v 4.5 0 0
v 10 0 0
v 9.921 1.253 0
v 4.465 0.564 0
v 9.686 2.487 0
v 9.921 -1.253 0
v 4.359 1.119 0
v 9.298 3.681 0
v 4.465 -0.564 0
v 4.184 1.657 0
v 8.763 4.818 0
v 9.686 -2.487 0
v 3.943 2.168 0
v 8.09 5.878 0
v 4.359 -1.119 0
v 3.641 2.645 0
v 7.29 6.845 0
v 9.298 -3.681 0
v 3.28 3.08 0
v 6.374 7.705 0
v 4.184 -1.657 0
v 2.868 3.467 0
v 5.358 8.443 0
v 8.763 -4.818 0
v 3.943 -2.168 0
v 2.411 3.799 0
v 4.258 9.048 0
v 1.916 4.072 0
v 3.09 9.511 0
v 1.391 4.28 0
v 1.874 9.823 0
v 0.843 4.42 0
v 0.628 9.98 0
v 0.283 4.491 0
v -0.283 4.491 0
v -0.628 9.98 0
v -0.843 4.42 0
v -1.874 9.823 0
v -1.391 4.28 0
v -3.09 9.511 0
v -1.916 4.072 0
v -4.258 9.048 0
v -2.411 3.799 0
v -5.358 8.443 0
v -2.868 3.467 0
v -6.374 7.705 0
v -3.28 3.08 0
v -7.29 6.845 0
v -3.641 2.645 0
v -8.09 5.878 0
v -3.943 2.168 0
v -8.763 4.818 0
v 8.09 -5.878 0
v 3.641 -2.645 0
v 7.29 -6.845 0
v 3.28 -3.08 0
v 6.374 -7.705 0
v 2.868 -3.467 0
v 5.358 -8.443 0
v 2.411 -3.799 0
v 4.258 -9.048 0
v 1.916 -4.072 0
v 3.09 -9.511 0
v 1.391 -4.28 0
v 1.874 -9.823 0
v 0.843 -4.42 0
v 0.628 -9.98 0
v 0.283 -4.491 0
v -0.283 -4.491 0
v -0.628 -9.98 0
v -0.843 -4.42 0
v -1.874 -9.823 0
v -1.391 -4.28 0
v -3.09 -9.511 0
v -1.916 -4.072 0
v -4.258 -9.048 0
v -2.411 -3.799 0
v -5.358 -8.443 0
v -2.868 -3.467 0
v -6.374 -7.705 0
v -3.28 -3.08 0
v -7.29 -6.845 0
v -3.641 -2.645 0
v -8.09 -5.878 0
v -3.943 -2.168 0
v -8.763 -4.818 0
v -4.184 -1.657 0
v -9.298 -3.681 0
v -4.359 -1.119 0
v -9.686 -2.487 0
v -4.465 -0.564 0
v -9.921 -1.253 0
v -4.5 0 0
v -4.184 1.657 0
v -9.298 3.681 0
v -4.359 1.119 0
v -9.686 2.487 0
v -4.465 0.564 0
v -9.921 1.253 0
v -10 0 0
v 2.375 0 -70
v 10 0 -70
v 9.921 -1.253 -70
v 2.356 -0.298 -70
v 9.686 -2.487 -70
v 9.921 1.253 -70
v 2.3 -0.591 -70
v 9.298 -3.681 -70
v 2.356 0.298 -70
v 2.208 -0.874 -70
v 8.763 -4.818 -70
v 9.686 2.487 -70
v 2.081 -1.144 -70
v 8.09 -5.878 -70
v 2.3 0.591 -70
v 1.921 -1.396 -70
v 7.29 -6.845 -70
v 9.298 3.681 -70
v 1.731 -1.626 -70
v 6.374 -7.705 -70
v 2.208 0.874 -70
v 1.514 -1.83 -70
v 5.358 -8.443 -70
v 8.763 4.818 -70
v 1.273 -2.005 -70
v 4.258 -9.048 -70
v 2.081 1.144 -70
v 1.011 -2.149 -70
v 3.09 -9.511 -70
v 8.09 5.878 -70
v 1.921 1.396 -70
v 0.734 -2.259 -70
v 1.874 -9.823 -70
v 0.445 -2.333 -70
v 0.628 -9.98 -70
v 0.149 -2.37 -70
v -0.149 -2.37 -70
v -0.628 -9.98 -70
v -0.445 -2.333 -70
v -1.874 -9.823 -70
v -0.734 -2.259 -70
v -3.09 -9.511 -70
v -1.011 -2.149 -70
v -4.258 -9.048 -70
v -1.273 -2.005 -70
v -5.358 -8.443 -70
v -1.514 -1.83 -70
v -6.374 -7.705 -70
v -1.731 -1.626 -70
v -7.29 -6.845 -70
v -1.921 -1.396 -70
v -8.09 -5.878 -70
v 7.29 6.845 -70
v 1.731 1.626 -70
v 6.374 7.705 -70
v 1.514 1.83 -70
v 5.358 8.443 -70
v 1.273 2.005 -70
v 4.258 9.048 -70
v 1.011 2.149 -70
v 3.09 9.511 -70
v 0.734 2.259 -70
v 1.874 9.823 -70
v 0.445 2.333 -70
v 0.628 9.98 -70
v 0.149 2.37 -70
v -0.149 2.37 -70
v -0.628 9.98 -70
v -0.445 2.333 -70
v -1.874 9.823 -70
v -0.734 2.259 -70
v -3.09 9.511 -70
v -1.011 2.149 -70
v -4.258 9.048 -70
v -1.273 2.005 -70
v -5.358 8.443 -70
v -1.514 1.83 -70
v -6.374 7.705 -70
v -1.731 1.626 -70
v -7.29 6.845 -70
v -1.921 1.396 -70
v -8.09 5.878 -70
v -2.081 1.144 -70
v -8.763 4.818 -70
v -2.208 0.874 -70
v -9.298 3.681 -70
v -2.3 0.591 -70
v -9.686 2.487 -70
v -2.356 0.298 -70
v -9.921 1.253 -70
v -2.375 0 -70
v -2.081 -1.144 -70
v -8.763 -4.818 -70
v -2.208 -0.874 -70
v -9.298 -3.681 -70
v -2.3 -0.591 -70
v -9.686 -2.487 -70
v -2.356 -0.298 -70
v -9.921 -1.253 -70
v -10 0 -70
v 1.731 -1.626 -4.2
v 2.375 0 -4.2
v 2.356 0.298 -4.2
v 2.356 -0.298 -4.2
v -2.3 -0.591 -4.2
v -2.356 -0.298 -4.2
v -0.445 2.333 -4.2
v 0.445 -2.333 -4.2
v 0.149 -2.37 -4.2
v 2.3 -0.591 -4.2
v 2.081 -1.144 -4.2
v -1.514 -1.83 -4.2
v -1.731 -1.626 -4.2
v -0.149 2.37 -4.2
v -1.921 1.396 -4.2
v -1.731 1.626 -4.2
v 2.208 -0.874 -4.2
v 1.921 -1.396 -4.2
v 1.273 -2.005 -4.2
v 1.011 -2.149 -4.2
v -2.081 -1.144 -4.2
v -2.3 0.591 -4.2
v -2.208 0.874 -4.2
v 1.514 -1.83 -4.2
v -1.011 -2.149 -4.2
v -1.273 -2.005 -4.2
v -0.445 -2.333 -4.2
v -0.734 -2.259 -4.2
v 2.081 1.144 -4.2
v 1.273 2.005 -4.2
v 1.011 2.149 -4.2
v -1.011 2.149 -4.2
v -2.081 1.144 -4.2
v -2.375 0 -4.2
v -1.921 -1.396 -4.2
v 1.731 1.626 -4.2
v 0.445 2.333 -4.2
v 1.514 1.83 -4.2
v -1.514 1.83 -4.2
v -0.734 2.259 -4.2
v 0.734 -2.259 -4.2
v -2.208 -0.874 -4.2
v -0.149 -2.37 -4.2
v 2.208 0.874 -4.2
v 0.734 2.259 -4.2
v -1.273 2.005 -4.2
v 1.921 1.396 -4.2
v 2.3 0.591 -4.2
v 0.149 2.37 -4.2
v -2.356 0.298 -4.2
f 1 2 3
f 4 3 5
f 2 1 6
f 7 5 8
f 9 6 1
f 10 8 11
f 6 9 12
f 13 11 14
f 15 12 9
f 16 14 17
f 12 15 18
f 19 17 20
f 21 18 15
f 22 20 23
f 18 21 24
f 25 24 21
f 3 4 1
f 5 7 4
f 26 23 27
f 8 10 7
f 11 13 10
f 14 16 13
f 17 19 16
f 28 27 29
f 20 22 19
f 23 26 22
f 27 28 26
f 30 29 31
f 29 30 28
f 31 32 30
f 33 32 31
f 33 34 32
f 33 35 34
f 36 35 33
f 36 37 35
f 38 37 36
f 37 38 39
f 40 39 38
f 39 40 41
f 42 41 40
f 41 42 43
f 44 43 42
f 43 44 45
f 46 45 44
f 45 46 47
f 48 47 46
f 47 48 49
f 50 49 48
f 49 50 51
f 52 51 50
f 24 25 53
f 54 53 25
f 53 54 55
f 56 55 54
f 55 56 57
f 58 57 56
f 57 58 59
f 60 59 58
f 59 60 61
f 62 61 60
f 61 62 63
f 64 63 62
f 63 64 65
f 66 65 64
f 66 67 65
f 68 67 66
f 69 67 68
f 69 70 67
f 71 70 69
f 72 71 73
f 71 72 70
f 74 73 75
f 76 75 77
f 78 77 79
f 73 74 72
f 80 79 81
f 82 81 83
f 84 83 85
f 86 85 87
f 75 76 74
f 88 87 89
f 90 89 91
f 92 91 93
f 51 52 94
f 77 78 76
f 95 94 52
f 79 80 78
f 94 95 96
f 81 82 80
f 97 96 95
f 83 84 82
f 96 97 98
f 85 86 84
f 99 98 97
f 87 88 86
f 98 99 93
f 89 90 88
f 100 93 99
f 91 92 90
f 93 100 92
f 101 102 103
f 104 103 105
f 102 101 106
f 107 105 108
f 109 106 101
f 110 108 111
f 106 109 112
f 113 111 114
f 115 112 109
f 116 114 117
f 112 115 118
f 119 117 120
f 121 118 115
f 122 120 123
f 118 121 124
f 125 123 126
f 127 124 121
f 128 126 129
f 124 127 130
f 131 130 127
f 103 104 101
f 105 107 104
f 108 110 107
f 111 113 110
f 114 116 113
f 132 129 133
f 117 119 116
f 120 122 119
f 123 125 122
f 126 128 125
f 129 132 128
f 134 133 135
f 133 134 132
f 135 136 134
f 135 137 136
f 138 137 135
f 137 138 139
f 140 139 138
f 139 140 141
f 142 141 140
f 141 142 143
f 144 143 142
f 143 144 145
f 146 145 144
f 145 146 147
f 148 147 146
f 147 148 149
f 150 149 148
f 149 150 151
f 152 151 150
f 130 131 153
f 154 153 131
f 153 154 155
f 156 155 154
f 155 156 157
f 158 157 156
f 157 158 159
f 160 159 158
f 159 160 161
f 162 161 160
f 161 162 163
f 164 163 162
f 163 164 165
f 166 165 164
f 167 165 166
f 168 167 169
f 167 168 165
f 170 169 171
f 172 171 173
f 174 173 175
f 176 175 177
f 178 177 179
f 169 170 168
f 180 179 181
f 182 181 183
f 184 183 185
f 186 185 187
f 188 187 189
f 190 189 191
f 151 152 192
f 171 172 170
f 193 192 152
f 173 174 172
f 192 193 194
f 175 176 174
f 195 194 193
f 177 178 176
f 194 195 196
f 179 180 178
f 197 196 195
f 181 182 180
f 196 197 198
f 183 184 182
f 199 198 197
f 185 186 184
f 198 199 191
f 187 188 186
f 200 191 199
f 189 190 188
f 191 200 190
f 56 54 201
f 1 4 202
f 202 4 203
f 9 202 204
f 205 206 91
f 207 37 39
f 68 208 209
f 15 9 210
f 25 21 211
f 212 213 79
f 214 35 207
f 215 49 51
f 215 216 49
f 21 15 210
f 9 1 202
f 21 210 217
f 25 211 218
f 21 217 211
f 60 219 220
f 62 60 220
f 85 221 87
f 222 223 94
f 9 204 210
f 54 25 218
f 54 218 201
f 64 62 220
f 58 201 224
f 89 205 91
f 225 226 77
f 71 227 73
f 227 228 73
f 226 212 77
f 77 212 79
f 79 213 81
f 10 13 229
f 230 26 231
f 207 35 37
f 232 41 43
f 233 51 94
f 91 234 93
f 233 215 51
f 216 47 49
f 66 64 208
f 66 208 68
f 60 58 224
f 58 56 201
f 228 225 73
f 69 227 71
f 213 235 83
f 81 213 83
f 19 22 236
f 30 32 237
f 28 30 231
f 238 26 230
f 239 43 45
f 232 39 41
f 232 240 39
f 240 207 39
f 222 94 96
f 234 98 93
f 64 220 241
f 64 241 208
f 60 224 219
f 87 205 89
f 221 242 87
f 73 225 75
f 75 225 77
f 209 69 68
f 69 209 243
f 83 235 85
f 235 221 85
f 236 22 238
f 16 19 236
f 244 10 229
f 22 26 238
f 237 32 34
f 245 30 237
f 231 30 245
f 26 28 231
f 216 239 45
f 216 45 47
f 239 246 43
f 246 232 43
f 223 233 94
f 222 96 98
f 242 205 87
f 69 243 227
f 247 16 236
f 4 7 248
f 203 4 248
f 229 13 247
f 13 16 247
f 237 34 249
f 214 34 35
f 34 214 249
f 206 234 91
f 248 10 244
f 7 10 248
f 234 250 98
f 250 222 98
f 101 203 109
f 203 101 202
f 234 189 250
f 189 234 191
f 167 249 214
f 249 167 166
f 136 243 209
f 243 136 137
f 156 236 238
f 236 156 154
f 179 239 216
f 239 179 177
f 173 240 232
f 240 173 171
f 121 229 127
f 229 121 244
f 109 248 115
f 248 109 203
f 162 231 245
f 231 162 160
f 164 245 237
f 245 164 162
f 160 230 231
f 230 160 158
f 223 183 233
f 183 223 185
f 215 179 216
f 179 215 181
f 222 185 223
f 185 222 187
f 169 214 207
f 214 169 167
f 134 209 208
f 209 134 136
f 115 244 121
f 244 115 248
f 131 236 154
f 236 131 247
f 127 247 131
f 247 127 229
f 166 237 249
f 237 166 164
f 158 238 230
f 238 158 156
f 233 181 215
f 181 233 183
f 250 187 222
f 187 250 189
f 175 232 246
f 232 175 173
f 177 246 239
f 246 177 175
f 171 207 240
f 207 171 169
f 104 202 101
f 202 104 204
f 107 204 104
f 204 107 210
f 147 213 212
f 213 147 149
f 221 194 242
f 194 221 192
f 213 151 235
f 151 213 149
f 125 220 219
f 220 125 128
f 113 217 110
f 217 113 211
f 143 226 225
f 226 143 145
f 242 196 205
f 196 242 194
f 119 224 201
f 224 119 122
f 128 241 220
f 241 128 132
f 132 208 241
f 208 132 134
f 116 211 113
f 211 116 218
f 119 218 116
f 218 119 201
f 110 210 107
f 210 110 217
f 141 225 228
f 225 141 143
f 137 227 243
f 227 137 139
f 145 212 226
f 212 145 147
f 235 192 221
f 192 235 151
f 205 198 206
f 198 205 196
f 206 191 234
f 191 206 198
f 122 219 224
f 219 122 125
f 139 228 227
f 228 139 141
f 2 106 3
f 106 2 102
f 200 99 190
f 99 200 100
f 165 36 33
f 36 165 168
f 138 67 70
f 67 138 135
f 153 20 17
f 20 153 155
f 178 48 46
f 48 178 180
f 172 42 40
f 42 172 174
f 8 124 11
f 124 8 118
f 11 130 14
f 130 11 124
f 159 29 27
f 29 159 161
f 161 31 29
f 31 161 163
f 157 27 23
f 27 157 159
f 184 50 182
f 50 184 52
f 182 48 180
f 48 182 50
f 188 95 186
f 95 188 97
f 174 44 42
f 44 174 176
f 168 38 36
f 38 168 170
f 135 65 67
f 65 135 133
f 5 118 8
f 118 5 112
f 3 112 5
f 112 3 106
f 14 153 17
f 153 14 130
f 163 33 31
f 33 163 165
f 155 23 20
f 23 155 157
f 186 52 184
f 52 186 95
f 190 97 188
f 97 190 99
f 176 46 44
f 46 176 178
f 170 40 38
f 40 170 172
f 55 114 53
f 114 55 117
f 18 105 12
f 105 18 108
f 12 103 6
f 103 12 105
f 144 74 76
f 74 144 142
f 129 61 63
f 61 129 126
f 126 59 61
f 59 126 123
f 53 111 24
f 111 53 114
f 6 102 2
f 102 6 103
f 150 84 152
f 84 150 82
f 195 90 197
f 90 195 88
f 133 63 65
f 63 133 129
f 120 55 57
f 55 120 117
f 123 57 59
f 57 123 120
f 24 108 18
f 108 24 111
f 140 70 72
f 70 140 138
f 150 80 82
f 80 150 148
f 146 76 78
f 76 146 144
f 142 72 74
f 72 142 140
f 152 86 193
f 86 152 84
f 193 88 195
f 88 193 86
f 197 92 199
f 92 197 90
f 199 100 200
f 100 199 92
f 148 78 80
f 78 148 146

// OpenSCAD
$fn = 50;


difference() {
	union() {
		translate(v = [0, 0, -70.0000000000]) {
			cylinder(h = 70, r = 10.0000000000);
		}
		cylinder(h = 0, r = 19.0000000000);
	}
	union() {
		translate(v = [0, 0, 0]) {
			rotate(a = [0, 0, 0]) {
				difference() {
					union() {
						#translate(v = [0, 0, -70.0000000000]) {
							cylinder(h = 70, r = 2.2500000000);
						}
						#translate(v = [0, 0, -4.2000000000]) {
							cylinder(h = 4.2000000000, r1 = 2.3750000000, r2 = 4.5000000000);
						}
						#translate(v = [0, 0, -70.0000000000]) {
							cylinder(h = 70, r = 2.3750000000);
						}
						#translate(v = [0, 0, -70.0000000000]) {
							cylinder(h = 70, r = 2.2500000000);
						}
					}
					union();
				}
			}
		}
	}
}
